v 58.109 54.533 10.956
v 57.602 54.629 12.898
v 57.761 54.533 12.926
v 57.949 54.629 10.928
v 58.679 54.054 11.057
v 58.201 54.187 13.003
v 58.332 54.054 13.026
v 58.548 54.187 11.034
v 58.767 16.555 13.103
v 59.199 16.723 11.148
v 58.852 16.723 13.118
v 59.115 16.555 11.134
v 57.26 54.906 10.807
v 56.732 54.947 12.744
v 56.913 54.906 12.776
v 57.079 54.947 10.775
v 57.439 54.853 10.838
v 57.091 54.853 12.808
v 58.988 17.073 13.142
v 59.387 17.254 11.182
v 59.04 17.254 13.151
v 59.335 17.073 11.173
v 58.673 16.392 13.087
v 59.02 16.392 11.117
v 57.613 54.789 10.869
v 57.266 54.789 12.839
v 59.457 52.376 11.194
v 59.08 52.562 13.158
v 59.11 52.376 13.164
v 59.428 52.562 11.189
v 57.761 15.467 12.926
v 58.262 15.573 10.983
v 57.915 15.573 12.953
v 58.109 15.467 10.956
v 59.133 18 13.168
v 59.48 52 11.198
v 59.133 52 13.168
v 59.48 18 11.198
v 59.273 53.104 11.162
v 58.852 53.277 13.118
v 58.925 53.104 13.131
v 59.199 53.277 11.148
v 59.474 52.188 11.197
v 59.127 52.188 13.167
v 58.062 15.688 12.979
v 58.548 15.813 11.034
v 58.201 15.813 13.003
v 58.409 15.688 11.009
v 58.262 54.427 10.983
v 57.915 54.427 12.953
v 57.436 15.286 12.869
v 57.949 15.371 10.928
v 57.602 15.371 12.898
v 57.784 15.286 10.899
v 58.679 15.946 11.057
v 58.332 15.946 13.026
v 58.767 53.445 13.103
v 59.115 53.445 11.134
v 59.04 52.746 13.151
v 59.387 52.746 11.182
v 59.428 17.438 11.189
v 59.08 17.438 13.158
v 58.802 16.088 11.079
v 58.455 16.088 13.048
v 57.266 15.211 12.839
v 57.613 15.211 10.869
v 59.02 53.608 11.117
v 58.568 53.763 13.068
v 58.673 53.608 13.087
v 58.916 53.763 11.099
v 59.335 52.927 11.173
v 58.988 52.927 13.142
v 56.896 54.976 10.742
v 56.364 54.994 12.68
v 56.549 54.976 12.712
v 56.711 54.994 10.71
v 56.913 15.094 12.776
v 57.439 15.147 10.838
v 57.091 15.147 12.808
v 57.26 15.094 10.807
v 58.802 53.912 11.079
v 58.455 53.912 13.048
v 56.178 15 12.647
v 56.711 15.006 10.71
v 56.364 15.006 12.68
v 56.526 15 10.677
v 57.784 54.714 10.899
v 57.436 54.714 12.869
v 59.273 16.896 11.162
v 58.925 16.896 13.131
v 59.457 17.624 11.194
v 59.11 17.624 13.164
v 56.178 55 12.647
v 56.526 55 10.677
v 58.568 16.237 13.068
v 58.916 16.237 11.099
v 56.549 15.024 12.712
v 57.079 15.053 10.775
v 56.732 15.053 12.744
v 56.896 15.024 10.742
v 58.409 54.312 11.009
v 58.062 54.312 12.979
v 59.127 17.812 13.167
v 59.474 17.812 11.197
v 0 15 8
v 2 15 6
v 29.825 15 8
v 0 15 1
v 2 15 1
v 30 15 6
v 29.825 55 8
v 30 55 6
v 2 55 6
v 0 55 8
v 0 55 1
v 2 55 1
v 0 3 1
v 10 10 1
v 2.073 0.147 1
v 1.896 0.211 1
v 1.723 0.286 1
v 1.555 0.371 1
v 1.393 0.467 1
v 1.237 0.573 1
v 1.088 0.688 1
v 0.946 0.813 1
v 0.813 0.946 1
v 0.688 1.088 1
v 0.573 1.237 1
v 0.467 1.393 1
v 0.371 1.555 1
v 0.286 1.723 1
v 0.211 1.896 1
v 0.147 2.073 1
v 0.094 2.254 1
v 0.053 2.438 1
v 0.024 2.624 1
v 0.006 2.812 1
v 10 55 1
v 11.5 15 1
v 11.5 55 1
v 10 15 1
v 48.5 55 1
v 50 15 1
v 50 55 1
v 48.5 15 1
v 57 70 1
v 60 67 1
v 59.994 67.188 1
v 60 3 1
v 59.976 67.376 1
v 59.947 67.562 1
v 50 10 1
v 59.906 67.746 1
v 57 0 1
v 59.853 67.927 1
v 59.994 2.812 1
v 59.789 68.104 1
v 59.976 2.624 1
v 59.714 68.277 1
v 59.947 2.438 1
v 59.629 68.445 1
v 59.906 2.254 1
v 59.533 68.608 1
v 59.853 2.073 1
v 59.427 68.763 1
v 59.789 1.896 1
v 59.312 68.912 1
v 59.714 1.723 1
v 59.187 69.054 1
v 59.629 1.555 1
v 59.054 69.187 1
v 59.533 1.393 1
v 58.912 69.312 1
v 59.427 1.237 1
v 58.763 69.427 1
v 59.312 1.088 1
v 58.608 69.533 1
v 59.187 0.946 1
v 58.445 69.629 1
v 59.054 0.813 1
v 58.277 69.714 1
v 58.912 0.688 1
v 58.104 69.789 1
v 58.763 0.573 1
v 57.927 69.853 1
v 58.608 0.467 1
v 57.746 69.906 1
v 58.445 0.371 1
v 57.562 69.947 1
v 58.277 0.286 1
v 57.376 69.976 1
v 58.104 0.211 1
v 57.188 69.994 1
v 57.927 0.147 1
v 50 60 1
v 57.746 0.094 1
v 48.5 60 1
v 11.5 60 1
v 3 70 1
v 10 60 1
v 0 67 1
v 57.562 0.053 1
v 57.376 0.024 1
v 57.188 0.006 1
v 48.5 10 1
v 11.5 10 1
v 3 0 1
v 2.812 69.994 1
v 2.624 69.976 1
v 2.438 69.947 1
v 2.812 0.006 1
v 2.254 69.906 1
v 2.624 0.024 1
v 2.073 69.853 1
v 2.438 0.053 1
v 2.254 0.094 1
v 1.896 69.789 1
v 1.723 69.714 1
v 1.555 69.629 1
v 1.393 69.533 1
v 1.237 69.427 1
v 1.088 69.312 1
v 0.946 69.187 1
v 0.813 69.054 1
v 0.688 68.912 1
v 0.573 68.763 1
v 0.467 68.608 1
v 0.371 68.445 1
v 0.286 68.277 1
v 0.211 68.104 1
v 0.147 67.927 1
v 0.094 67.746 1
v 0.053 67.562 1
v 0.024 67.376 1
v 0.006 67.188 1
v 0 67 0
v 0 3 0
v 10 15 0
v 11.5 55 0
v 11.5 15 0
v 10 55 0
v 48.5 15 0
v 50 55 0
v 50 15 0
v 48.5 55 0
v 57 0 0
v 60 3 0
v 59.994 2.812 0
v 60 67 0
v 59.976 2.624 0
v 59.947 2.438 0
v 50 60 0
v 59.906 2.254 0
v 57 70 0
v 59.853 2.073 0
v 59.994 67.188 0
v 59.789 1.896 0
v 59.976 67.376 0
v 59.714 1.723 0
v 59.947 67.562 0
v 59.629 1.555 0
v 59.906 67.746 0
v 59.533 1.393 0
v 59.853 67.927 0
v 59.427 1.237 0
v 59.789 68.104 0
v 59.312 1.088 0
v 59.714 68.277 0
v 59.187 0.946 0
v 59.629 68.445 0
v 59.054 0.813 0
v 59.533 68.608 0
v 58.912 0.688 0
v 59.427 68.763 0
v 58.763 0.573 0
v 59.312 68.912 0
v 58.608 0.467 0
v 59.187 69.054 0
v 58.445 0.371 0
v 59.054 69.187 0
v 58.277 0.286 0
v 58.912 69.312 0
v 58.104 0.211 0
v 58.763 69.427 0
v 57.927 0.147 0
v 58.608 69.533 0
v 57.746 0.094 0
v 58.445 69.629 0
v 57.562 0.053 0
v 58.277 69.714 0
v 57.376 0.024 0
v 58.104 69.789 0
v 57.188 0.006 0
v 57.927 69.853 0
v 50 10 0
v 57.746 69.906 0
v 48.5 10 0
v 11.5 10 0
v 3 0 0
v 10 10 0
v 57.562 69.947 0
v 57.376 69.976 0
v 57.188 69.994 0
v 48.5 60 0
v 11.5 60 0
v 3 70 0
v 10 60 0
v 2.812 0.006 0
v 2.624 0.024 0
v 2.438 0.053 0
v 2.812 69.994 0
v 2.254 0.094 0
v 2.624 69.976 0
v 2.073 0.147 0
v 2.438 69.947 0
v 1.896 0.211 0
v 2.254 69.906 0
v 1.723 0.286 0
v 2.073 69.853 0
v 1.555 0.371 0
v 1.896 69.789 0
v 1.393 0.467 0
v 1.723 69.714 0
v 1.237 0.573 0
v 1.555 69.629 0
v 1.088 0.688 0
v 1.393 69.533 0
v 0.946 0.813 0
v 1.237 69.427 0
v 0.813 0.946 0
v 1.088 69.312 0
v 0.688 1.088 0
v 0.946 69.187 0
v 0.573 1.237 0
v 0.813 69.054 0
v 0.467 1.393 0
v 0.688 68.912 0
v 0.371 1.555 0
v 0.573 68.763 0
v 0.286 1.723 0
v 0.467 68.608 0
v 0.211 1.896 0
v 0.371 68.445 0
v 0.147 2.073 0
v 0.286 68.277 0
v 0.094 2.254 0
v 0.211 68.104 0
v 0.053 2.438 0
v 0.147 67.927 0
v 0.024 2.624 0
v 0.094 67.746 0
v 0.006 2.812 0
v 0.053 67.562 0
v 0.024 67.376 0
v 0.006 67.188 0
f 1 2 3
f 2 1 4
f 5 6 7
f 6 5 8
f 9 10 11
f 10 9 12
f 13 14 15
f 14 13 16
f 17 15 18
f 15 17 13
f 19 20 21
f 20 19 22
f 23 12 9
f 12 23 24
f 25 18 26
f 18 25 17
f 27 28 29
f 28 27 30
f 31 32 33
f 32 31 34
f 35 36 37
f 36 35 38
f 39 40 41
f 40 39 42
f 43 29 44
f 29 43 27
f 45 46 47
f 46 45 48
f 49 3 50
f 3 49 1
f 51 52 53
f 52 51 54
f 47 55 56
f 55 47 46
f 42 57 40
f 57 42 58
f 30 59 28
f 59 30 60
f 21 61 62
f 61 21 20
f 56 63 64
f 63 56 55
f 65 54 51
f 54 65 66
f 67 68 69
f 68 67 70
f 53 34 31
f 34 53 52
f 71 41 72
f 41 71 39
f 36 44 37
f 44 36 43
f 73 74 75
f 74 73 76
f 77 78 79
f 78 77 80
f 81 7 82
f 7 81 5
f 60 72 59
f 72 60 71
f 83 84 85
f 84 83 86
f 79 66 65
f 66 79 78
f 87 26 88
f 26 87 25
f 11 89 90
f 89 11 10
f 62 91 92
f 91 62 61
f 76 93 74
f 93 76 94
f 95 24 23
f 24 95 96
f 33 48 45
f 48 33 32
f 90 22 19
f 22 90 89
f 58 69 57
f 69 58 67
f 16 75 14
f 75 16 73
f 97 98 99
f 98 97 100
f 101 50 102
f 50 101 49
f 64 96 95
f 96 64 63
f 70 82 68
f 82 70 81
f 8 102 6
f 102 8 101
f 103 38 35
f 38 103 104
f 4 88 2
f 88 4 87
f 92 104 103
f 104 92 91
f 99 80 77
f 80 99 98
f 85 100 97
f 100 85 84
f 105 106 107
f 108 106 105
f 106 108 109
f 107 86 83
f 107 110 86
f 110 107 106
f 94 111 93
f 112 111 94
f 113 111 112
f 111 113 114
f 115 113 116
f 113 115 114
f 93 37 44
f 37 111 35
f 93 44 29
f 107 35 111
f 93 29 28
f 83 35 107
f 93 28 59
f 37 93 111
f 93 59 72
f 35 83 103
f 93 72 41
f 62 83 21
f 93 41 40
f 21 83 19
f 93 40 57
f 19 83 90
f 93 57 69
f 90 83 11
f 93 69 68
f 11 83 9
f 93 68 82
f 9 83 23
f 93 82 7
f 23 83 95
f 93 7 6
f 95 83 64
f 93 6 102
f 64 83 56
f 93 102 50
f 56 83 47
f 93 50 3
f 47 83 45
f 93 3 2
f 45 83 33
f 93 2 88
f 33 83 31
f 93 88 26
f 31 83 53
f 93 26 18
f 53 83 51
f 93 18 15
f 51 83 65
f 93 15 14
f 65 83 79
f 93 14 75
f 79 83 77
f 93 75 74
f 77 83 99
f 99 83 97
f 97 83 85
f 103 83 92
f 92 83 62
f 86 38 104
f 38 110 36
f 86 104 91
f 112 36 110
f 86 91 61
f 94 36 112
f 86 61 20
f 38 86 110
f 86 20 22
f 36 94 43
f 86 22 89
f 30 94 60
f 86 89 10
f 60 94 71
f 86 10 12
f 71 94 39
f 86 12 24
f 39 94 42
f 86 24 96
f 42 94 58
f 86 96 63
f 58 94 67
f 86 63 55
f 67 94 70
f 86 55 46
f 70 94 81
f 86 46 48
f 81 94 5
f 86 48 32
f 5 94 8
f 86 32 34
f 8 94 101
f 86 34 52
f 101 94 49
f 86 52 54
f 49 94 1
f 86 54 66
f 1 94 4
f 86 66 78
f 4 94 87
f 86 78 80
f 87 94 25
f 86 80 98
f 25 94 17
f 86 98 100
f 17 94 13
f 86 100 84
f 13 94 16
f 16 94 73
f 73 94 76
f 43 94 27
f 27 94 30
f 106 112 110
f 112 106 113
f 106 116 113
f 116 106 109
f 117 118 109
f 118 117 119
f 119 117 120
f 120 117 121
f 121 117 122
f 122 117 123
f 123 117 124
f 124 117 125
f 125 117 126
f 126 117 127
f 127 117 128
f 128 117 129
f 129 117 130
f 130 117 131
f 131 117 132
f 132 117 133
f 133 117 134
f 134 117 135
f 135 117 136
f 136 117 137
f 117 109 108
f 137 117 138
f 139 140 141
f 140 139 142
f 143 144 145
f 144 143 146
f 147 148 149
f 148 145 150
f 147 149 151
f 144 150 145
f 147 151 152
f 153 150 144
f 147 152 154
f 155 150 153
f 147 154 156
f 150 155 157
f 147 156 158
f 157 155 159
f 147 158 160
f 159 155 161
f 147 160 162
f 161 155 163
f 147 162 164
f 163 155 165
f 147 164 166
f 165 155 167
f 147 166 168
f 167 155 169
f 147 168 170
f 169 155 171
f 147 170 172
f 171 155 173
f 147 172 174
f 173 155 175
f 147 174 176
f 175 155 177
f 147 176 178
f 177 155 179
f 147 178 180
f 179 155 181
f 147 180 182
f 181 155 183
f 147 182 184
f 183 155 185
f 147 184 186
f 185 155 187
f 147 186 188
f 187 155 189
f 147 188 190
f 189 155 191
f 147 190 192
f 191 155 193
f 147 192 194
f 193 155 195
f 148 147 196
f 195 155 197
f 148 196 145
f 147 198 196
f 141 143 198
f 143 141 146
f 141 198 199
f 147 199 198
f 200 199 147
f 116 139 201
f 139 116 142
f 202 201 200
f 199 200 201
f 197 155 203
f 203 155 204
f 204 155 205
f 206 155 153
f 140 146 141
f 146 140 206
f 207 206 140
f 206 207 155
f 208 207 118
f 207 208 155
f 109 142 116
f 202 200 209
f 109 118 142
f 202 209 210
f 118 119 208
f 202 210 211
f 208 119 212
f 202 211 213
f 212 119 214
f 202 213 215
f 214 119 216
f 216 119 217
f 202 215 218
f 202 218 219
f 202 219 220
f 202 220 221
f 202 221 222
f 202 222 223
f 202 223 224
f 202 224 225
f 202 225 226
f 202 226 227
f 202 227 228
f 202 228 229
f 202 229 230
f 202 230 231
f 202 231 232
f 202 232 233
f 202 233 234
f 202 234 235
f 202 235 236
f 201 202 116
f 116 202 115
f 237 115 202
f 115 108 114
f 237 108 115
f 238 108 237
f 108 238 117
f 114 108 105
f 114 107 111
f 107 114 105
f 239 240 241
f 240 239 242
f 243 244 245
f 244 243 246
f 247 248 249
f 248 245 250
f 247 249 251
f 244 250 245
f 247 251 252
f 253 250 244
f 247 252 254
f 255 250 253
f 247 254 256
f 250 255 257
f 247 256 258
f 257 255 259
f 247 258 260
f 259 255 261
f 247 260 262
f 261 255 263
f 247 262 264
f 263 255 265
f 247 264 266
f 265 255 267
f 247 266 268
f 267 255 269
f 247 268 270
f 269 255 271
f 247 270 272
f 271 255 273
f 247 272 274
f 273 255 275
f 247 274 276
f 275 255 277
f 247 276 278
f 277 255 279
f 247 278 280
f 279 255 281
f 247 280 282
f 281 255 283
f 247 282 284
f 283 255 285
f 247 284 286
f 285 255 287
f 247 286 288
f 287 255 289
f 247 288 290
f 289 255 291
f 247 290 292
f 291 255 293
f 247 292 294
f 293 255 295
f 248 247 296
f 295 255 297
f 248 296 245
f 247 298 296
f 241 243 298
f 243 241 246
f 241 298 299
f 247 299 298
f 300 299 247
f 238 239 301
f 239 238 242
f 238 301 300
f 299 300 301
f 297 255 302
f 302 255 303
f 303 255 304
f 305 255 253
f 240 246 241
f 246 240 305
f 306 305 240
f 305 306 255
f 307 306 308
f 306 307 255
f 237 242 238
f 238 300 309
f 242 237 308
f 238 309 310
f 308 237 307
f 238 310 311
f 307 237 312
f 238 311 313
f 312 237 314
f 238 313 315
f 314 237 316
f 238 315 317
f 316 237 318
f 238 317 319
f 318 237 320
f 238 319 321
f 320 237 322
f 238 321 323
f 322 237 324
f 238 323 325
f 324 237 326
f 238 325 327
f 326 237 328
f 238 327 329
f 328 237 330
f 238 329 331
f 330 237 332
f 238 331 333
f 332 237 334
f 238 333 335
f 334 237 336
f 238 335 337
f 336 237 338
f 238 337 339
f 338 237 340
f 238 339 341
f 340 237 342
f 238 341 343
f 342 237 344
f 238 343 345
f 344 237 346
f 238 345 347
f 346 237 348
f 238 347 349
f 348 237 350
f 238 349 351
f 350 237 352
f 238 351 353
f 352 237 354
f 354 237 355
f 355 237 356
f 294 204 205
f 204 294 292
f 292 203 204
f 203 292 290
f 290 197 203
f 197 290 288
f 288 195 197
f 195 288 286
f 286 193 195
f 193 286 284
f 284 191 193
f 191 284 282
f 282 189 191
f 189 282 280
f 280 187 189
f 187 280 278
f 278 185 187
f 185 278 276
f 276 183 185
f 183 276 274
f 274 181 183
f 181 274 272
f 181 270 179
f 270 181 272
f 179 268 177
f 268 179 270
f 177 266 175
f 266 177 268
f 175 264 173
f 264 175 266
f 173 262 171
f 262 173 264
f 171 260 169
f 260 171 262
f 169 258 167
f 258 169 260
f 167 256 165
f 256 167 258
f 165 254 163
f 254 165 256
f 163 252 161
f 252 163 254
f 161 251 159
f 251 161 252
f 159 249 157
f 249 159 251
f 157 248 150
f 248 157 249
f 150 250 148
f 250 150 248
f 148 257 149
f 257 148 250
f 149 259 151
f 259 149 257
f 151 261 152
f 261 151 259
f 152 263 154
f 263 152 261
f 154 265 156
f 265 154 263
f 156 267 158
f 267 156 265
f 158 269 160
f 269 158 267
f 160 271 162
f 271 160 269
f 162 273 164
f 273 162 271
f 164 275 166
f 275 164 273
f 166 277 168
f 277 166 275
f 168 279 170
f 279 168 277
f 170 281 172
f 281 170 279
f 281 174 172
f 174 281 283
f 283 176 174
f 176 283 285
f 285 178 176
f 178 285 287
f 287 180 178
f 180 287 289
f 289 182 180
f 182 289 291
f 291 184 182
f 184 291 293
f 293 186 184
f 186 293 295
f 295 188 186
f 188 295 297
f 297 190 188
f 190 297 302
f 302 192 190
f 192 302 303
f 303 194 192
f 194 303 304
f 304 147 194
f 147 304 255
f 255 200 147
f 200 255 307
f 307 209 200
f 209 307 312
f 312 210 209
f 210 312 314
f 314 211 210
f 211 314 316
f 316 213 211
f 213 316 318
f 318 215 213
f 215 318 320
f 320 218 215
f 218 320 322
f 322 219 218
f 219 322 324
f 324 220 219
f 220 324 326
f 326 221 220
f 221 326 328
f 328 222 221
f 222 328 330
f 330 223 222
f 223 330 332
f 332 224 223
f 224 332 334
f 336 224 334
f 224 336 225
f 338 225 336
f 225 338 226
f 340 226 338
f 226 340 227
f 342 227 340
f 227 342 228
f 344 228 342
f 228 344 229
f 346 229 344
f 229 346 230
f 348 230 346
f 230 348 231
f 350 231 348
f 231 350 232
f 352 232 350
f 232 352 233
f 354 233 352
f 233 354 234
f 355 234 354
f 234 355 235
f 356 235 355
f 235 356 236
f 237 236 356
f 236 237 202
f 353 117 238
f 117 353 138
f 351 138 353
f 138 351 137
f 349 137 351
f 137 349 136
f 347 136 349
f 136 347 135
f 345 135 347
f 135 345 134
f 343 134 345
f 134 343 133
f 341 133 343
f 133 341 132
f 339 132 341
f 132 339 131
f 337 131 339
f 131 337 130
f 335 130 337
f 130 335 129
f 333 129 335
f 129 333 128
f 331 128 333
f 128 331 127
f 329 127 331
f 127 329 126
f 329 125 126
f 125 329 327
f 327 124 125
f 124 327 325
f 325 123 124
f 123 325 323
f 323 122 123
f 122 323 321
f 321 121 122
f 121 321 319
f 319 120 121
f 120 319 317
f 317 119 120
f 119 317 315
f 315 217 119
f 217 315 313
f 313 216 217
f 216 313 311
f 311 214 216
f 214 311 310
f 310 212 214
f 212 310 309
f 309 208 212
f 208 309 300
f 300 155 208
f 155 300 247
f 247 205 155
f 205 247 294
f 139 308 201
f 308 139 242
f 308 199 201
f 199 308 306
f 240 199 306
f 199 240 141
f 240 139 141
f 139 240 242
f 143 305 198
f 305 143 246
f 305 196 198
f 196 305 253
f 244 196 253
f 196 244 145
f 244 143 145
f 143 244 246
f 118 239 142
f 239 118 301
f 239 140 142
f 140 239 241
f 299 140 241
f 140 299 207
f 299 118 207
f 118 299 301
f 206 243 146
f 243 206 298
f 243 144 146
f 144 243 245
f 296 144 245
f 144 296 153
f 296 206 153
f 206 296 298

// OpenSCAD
// file: base_plate.scad
module base_plate() {
  linear_extrude(1) {
    difference() {
      minkowski($fn = 100) {
        circle(3);

        translate([3, 3, 0])
        square([60 - 6, 70 - 6]);
      }

      translate([10, 10])
      square([1.5, 5]);

      translate([60 - 10 - 1.5, 10])
      square([1.5, 5]);

      translate([10, 70 - 10 - 5])
      square([1.5, 5]);

      translate([60 - 10 - 1.5, 70 - 10 - 5])
      square([1.5, 5]);
    }
  }
}
// main file
use <base_plate.scad>;

base_plate();


difference() {
  translate([0, 15, 1])
  rotate([270, 270, 0])
  linear_extrude(40) {
    square([5, 2]);

    translate([5, 0, 0]) {
      square([2, 30]);

      translate([0, 30, 0])
      rotate(-10)
      square([2, 30]);
    }
  }

  // Round the corners
  rotate([0, -10, 0])
  translate([60 - 3 * sin(-10) - 6, 15, 0])
  difference() {
    translate([3, -0.1, 0])
    cube([3.1, 40.2, 20]);

    hull() {
      translate([3, 3, 0])
      cylinder(20, r=3, $fn=100, center=false);

      translate([3, 40 - 3, 0])
      cylinder(20, r=3, $fn=100, center=false);
    }
  }
}
